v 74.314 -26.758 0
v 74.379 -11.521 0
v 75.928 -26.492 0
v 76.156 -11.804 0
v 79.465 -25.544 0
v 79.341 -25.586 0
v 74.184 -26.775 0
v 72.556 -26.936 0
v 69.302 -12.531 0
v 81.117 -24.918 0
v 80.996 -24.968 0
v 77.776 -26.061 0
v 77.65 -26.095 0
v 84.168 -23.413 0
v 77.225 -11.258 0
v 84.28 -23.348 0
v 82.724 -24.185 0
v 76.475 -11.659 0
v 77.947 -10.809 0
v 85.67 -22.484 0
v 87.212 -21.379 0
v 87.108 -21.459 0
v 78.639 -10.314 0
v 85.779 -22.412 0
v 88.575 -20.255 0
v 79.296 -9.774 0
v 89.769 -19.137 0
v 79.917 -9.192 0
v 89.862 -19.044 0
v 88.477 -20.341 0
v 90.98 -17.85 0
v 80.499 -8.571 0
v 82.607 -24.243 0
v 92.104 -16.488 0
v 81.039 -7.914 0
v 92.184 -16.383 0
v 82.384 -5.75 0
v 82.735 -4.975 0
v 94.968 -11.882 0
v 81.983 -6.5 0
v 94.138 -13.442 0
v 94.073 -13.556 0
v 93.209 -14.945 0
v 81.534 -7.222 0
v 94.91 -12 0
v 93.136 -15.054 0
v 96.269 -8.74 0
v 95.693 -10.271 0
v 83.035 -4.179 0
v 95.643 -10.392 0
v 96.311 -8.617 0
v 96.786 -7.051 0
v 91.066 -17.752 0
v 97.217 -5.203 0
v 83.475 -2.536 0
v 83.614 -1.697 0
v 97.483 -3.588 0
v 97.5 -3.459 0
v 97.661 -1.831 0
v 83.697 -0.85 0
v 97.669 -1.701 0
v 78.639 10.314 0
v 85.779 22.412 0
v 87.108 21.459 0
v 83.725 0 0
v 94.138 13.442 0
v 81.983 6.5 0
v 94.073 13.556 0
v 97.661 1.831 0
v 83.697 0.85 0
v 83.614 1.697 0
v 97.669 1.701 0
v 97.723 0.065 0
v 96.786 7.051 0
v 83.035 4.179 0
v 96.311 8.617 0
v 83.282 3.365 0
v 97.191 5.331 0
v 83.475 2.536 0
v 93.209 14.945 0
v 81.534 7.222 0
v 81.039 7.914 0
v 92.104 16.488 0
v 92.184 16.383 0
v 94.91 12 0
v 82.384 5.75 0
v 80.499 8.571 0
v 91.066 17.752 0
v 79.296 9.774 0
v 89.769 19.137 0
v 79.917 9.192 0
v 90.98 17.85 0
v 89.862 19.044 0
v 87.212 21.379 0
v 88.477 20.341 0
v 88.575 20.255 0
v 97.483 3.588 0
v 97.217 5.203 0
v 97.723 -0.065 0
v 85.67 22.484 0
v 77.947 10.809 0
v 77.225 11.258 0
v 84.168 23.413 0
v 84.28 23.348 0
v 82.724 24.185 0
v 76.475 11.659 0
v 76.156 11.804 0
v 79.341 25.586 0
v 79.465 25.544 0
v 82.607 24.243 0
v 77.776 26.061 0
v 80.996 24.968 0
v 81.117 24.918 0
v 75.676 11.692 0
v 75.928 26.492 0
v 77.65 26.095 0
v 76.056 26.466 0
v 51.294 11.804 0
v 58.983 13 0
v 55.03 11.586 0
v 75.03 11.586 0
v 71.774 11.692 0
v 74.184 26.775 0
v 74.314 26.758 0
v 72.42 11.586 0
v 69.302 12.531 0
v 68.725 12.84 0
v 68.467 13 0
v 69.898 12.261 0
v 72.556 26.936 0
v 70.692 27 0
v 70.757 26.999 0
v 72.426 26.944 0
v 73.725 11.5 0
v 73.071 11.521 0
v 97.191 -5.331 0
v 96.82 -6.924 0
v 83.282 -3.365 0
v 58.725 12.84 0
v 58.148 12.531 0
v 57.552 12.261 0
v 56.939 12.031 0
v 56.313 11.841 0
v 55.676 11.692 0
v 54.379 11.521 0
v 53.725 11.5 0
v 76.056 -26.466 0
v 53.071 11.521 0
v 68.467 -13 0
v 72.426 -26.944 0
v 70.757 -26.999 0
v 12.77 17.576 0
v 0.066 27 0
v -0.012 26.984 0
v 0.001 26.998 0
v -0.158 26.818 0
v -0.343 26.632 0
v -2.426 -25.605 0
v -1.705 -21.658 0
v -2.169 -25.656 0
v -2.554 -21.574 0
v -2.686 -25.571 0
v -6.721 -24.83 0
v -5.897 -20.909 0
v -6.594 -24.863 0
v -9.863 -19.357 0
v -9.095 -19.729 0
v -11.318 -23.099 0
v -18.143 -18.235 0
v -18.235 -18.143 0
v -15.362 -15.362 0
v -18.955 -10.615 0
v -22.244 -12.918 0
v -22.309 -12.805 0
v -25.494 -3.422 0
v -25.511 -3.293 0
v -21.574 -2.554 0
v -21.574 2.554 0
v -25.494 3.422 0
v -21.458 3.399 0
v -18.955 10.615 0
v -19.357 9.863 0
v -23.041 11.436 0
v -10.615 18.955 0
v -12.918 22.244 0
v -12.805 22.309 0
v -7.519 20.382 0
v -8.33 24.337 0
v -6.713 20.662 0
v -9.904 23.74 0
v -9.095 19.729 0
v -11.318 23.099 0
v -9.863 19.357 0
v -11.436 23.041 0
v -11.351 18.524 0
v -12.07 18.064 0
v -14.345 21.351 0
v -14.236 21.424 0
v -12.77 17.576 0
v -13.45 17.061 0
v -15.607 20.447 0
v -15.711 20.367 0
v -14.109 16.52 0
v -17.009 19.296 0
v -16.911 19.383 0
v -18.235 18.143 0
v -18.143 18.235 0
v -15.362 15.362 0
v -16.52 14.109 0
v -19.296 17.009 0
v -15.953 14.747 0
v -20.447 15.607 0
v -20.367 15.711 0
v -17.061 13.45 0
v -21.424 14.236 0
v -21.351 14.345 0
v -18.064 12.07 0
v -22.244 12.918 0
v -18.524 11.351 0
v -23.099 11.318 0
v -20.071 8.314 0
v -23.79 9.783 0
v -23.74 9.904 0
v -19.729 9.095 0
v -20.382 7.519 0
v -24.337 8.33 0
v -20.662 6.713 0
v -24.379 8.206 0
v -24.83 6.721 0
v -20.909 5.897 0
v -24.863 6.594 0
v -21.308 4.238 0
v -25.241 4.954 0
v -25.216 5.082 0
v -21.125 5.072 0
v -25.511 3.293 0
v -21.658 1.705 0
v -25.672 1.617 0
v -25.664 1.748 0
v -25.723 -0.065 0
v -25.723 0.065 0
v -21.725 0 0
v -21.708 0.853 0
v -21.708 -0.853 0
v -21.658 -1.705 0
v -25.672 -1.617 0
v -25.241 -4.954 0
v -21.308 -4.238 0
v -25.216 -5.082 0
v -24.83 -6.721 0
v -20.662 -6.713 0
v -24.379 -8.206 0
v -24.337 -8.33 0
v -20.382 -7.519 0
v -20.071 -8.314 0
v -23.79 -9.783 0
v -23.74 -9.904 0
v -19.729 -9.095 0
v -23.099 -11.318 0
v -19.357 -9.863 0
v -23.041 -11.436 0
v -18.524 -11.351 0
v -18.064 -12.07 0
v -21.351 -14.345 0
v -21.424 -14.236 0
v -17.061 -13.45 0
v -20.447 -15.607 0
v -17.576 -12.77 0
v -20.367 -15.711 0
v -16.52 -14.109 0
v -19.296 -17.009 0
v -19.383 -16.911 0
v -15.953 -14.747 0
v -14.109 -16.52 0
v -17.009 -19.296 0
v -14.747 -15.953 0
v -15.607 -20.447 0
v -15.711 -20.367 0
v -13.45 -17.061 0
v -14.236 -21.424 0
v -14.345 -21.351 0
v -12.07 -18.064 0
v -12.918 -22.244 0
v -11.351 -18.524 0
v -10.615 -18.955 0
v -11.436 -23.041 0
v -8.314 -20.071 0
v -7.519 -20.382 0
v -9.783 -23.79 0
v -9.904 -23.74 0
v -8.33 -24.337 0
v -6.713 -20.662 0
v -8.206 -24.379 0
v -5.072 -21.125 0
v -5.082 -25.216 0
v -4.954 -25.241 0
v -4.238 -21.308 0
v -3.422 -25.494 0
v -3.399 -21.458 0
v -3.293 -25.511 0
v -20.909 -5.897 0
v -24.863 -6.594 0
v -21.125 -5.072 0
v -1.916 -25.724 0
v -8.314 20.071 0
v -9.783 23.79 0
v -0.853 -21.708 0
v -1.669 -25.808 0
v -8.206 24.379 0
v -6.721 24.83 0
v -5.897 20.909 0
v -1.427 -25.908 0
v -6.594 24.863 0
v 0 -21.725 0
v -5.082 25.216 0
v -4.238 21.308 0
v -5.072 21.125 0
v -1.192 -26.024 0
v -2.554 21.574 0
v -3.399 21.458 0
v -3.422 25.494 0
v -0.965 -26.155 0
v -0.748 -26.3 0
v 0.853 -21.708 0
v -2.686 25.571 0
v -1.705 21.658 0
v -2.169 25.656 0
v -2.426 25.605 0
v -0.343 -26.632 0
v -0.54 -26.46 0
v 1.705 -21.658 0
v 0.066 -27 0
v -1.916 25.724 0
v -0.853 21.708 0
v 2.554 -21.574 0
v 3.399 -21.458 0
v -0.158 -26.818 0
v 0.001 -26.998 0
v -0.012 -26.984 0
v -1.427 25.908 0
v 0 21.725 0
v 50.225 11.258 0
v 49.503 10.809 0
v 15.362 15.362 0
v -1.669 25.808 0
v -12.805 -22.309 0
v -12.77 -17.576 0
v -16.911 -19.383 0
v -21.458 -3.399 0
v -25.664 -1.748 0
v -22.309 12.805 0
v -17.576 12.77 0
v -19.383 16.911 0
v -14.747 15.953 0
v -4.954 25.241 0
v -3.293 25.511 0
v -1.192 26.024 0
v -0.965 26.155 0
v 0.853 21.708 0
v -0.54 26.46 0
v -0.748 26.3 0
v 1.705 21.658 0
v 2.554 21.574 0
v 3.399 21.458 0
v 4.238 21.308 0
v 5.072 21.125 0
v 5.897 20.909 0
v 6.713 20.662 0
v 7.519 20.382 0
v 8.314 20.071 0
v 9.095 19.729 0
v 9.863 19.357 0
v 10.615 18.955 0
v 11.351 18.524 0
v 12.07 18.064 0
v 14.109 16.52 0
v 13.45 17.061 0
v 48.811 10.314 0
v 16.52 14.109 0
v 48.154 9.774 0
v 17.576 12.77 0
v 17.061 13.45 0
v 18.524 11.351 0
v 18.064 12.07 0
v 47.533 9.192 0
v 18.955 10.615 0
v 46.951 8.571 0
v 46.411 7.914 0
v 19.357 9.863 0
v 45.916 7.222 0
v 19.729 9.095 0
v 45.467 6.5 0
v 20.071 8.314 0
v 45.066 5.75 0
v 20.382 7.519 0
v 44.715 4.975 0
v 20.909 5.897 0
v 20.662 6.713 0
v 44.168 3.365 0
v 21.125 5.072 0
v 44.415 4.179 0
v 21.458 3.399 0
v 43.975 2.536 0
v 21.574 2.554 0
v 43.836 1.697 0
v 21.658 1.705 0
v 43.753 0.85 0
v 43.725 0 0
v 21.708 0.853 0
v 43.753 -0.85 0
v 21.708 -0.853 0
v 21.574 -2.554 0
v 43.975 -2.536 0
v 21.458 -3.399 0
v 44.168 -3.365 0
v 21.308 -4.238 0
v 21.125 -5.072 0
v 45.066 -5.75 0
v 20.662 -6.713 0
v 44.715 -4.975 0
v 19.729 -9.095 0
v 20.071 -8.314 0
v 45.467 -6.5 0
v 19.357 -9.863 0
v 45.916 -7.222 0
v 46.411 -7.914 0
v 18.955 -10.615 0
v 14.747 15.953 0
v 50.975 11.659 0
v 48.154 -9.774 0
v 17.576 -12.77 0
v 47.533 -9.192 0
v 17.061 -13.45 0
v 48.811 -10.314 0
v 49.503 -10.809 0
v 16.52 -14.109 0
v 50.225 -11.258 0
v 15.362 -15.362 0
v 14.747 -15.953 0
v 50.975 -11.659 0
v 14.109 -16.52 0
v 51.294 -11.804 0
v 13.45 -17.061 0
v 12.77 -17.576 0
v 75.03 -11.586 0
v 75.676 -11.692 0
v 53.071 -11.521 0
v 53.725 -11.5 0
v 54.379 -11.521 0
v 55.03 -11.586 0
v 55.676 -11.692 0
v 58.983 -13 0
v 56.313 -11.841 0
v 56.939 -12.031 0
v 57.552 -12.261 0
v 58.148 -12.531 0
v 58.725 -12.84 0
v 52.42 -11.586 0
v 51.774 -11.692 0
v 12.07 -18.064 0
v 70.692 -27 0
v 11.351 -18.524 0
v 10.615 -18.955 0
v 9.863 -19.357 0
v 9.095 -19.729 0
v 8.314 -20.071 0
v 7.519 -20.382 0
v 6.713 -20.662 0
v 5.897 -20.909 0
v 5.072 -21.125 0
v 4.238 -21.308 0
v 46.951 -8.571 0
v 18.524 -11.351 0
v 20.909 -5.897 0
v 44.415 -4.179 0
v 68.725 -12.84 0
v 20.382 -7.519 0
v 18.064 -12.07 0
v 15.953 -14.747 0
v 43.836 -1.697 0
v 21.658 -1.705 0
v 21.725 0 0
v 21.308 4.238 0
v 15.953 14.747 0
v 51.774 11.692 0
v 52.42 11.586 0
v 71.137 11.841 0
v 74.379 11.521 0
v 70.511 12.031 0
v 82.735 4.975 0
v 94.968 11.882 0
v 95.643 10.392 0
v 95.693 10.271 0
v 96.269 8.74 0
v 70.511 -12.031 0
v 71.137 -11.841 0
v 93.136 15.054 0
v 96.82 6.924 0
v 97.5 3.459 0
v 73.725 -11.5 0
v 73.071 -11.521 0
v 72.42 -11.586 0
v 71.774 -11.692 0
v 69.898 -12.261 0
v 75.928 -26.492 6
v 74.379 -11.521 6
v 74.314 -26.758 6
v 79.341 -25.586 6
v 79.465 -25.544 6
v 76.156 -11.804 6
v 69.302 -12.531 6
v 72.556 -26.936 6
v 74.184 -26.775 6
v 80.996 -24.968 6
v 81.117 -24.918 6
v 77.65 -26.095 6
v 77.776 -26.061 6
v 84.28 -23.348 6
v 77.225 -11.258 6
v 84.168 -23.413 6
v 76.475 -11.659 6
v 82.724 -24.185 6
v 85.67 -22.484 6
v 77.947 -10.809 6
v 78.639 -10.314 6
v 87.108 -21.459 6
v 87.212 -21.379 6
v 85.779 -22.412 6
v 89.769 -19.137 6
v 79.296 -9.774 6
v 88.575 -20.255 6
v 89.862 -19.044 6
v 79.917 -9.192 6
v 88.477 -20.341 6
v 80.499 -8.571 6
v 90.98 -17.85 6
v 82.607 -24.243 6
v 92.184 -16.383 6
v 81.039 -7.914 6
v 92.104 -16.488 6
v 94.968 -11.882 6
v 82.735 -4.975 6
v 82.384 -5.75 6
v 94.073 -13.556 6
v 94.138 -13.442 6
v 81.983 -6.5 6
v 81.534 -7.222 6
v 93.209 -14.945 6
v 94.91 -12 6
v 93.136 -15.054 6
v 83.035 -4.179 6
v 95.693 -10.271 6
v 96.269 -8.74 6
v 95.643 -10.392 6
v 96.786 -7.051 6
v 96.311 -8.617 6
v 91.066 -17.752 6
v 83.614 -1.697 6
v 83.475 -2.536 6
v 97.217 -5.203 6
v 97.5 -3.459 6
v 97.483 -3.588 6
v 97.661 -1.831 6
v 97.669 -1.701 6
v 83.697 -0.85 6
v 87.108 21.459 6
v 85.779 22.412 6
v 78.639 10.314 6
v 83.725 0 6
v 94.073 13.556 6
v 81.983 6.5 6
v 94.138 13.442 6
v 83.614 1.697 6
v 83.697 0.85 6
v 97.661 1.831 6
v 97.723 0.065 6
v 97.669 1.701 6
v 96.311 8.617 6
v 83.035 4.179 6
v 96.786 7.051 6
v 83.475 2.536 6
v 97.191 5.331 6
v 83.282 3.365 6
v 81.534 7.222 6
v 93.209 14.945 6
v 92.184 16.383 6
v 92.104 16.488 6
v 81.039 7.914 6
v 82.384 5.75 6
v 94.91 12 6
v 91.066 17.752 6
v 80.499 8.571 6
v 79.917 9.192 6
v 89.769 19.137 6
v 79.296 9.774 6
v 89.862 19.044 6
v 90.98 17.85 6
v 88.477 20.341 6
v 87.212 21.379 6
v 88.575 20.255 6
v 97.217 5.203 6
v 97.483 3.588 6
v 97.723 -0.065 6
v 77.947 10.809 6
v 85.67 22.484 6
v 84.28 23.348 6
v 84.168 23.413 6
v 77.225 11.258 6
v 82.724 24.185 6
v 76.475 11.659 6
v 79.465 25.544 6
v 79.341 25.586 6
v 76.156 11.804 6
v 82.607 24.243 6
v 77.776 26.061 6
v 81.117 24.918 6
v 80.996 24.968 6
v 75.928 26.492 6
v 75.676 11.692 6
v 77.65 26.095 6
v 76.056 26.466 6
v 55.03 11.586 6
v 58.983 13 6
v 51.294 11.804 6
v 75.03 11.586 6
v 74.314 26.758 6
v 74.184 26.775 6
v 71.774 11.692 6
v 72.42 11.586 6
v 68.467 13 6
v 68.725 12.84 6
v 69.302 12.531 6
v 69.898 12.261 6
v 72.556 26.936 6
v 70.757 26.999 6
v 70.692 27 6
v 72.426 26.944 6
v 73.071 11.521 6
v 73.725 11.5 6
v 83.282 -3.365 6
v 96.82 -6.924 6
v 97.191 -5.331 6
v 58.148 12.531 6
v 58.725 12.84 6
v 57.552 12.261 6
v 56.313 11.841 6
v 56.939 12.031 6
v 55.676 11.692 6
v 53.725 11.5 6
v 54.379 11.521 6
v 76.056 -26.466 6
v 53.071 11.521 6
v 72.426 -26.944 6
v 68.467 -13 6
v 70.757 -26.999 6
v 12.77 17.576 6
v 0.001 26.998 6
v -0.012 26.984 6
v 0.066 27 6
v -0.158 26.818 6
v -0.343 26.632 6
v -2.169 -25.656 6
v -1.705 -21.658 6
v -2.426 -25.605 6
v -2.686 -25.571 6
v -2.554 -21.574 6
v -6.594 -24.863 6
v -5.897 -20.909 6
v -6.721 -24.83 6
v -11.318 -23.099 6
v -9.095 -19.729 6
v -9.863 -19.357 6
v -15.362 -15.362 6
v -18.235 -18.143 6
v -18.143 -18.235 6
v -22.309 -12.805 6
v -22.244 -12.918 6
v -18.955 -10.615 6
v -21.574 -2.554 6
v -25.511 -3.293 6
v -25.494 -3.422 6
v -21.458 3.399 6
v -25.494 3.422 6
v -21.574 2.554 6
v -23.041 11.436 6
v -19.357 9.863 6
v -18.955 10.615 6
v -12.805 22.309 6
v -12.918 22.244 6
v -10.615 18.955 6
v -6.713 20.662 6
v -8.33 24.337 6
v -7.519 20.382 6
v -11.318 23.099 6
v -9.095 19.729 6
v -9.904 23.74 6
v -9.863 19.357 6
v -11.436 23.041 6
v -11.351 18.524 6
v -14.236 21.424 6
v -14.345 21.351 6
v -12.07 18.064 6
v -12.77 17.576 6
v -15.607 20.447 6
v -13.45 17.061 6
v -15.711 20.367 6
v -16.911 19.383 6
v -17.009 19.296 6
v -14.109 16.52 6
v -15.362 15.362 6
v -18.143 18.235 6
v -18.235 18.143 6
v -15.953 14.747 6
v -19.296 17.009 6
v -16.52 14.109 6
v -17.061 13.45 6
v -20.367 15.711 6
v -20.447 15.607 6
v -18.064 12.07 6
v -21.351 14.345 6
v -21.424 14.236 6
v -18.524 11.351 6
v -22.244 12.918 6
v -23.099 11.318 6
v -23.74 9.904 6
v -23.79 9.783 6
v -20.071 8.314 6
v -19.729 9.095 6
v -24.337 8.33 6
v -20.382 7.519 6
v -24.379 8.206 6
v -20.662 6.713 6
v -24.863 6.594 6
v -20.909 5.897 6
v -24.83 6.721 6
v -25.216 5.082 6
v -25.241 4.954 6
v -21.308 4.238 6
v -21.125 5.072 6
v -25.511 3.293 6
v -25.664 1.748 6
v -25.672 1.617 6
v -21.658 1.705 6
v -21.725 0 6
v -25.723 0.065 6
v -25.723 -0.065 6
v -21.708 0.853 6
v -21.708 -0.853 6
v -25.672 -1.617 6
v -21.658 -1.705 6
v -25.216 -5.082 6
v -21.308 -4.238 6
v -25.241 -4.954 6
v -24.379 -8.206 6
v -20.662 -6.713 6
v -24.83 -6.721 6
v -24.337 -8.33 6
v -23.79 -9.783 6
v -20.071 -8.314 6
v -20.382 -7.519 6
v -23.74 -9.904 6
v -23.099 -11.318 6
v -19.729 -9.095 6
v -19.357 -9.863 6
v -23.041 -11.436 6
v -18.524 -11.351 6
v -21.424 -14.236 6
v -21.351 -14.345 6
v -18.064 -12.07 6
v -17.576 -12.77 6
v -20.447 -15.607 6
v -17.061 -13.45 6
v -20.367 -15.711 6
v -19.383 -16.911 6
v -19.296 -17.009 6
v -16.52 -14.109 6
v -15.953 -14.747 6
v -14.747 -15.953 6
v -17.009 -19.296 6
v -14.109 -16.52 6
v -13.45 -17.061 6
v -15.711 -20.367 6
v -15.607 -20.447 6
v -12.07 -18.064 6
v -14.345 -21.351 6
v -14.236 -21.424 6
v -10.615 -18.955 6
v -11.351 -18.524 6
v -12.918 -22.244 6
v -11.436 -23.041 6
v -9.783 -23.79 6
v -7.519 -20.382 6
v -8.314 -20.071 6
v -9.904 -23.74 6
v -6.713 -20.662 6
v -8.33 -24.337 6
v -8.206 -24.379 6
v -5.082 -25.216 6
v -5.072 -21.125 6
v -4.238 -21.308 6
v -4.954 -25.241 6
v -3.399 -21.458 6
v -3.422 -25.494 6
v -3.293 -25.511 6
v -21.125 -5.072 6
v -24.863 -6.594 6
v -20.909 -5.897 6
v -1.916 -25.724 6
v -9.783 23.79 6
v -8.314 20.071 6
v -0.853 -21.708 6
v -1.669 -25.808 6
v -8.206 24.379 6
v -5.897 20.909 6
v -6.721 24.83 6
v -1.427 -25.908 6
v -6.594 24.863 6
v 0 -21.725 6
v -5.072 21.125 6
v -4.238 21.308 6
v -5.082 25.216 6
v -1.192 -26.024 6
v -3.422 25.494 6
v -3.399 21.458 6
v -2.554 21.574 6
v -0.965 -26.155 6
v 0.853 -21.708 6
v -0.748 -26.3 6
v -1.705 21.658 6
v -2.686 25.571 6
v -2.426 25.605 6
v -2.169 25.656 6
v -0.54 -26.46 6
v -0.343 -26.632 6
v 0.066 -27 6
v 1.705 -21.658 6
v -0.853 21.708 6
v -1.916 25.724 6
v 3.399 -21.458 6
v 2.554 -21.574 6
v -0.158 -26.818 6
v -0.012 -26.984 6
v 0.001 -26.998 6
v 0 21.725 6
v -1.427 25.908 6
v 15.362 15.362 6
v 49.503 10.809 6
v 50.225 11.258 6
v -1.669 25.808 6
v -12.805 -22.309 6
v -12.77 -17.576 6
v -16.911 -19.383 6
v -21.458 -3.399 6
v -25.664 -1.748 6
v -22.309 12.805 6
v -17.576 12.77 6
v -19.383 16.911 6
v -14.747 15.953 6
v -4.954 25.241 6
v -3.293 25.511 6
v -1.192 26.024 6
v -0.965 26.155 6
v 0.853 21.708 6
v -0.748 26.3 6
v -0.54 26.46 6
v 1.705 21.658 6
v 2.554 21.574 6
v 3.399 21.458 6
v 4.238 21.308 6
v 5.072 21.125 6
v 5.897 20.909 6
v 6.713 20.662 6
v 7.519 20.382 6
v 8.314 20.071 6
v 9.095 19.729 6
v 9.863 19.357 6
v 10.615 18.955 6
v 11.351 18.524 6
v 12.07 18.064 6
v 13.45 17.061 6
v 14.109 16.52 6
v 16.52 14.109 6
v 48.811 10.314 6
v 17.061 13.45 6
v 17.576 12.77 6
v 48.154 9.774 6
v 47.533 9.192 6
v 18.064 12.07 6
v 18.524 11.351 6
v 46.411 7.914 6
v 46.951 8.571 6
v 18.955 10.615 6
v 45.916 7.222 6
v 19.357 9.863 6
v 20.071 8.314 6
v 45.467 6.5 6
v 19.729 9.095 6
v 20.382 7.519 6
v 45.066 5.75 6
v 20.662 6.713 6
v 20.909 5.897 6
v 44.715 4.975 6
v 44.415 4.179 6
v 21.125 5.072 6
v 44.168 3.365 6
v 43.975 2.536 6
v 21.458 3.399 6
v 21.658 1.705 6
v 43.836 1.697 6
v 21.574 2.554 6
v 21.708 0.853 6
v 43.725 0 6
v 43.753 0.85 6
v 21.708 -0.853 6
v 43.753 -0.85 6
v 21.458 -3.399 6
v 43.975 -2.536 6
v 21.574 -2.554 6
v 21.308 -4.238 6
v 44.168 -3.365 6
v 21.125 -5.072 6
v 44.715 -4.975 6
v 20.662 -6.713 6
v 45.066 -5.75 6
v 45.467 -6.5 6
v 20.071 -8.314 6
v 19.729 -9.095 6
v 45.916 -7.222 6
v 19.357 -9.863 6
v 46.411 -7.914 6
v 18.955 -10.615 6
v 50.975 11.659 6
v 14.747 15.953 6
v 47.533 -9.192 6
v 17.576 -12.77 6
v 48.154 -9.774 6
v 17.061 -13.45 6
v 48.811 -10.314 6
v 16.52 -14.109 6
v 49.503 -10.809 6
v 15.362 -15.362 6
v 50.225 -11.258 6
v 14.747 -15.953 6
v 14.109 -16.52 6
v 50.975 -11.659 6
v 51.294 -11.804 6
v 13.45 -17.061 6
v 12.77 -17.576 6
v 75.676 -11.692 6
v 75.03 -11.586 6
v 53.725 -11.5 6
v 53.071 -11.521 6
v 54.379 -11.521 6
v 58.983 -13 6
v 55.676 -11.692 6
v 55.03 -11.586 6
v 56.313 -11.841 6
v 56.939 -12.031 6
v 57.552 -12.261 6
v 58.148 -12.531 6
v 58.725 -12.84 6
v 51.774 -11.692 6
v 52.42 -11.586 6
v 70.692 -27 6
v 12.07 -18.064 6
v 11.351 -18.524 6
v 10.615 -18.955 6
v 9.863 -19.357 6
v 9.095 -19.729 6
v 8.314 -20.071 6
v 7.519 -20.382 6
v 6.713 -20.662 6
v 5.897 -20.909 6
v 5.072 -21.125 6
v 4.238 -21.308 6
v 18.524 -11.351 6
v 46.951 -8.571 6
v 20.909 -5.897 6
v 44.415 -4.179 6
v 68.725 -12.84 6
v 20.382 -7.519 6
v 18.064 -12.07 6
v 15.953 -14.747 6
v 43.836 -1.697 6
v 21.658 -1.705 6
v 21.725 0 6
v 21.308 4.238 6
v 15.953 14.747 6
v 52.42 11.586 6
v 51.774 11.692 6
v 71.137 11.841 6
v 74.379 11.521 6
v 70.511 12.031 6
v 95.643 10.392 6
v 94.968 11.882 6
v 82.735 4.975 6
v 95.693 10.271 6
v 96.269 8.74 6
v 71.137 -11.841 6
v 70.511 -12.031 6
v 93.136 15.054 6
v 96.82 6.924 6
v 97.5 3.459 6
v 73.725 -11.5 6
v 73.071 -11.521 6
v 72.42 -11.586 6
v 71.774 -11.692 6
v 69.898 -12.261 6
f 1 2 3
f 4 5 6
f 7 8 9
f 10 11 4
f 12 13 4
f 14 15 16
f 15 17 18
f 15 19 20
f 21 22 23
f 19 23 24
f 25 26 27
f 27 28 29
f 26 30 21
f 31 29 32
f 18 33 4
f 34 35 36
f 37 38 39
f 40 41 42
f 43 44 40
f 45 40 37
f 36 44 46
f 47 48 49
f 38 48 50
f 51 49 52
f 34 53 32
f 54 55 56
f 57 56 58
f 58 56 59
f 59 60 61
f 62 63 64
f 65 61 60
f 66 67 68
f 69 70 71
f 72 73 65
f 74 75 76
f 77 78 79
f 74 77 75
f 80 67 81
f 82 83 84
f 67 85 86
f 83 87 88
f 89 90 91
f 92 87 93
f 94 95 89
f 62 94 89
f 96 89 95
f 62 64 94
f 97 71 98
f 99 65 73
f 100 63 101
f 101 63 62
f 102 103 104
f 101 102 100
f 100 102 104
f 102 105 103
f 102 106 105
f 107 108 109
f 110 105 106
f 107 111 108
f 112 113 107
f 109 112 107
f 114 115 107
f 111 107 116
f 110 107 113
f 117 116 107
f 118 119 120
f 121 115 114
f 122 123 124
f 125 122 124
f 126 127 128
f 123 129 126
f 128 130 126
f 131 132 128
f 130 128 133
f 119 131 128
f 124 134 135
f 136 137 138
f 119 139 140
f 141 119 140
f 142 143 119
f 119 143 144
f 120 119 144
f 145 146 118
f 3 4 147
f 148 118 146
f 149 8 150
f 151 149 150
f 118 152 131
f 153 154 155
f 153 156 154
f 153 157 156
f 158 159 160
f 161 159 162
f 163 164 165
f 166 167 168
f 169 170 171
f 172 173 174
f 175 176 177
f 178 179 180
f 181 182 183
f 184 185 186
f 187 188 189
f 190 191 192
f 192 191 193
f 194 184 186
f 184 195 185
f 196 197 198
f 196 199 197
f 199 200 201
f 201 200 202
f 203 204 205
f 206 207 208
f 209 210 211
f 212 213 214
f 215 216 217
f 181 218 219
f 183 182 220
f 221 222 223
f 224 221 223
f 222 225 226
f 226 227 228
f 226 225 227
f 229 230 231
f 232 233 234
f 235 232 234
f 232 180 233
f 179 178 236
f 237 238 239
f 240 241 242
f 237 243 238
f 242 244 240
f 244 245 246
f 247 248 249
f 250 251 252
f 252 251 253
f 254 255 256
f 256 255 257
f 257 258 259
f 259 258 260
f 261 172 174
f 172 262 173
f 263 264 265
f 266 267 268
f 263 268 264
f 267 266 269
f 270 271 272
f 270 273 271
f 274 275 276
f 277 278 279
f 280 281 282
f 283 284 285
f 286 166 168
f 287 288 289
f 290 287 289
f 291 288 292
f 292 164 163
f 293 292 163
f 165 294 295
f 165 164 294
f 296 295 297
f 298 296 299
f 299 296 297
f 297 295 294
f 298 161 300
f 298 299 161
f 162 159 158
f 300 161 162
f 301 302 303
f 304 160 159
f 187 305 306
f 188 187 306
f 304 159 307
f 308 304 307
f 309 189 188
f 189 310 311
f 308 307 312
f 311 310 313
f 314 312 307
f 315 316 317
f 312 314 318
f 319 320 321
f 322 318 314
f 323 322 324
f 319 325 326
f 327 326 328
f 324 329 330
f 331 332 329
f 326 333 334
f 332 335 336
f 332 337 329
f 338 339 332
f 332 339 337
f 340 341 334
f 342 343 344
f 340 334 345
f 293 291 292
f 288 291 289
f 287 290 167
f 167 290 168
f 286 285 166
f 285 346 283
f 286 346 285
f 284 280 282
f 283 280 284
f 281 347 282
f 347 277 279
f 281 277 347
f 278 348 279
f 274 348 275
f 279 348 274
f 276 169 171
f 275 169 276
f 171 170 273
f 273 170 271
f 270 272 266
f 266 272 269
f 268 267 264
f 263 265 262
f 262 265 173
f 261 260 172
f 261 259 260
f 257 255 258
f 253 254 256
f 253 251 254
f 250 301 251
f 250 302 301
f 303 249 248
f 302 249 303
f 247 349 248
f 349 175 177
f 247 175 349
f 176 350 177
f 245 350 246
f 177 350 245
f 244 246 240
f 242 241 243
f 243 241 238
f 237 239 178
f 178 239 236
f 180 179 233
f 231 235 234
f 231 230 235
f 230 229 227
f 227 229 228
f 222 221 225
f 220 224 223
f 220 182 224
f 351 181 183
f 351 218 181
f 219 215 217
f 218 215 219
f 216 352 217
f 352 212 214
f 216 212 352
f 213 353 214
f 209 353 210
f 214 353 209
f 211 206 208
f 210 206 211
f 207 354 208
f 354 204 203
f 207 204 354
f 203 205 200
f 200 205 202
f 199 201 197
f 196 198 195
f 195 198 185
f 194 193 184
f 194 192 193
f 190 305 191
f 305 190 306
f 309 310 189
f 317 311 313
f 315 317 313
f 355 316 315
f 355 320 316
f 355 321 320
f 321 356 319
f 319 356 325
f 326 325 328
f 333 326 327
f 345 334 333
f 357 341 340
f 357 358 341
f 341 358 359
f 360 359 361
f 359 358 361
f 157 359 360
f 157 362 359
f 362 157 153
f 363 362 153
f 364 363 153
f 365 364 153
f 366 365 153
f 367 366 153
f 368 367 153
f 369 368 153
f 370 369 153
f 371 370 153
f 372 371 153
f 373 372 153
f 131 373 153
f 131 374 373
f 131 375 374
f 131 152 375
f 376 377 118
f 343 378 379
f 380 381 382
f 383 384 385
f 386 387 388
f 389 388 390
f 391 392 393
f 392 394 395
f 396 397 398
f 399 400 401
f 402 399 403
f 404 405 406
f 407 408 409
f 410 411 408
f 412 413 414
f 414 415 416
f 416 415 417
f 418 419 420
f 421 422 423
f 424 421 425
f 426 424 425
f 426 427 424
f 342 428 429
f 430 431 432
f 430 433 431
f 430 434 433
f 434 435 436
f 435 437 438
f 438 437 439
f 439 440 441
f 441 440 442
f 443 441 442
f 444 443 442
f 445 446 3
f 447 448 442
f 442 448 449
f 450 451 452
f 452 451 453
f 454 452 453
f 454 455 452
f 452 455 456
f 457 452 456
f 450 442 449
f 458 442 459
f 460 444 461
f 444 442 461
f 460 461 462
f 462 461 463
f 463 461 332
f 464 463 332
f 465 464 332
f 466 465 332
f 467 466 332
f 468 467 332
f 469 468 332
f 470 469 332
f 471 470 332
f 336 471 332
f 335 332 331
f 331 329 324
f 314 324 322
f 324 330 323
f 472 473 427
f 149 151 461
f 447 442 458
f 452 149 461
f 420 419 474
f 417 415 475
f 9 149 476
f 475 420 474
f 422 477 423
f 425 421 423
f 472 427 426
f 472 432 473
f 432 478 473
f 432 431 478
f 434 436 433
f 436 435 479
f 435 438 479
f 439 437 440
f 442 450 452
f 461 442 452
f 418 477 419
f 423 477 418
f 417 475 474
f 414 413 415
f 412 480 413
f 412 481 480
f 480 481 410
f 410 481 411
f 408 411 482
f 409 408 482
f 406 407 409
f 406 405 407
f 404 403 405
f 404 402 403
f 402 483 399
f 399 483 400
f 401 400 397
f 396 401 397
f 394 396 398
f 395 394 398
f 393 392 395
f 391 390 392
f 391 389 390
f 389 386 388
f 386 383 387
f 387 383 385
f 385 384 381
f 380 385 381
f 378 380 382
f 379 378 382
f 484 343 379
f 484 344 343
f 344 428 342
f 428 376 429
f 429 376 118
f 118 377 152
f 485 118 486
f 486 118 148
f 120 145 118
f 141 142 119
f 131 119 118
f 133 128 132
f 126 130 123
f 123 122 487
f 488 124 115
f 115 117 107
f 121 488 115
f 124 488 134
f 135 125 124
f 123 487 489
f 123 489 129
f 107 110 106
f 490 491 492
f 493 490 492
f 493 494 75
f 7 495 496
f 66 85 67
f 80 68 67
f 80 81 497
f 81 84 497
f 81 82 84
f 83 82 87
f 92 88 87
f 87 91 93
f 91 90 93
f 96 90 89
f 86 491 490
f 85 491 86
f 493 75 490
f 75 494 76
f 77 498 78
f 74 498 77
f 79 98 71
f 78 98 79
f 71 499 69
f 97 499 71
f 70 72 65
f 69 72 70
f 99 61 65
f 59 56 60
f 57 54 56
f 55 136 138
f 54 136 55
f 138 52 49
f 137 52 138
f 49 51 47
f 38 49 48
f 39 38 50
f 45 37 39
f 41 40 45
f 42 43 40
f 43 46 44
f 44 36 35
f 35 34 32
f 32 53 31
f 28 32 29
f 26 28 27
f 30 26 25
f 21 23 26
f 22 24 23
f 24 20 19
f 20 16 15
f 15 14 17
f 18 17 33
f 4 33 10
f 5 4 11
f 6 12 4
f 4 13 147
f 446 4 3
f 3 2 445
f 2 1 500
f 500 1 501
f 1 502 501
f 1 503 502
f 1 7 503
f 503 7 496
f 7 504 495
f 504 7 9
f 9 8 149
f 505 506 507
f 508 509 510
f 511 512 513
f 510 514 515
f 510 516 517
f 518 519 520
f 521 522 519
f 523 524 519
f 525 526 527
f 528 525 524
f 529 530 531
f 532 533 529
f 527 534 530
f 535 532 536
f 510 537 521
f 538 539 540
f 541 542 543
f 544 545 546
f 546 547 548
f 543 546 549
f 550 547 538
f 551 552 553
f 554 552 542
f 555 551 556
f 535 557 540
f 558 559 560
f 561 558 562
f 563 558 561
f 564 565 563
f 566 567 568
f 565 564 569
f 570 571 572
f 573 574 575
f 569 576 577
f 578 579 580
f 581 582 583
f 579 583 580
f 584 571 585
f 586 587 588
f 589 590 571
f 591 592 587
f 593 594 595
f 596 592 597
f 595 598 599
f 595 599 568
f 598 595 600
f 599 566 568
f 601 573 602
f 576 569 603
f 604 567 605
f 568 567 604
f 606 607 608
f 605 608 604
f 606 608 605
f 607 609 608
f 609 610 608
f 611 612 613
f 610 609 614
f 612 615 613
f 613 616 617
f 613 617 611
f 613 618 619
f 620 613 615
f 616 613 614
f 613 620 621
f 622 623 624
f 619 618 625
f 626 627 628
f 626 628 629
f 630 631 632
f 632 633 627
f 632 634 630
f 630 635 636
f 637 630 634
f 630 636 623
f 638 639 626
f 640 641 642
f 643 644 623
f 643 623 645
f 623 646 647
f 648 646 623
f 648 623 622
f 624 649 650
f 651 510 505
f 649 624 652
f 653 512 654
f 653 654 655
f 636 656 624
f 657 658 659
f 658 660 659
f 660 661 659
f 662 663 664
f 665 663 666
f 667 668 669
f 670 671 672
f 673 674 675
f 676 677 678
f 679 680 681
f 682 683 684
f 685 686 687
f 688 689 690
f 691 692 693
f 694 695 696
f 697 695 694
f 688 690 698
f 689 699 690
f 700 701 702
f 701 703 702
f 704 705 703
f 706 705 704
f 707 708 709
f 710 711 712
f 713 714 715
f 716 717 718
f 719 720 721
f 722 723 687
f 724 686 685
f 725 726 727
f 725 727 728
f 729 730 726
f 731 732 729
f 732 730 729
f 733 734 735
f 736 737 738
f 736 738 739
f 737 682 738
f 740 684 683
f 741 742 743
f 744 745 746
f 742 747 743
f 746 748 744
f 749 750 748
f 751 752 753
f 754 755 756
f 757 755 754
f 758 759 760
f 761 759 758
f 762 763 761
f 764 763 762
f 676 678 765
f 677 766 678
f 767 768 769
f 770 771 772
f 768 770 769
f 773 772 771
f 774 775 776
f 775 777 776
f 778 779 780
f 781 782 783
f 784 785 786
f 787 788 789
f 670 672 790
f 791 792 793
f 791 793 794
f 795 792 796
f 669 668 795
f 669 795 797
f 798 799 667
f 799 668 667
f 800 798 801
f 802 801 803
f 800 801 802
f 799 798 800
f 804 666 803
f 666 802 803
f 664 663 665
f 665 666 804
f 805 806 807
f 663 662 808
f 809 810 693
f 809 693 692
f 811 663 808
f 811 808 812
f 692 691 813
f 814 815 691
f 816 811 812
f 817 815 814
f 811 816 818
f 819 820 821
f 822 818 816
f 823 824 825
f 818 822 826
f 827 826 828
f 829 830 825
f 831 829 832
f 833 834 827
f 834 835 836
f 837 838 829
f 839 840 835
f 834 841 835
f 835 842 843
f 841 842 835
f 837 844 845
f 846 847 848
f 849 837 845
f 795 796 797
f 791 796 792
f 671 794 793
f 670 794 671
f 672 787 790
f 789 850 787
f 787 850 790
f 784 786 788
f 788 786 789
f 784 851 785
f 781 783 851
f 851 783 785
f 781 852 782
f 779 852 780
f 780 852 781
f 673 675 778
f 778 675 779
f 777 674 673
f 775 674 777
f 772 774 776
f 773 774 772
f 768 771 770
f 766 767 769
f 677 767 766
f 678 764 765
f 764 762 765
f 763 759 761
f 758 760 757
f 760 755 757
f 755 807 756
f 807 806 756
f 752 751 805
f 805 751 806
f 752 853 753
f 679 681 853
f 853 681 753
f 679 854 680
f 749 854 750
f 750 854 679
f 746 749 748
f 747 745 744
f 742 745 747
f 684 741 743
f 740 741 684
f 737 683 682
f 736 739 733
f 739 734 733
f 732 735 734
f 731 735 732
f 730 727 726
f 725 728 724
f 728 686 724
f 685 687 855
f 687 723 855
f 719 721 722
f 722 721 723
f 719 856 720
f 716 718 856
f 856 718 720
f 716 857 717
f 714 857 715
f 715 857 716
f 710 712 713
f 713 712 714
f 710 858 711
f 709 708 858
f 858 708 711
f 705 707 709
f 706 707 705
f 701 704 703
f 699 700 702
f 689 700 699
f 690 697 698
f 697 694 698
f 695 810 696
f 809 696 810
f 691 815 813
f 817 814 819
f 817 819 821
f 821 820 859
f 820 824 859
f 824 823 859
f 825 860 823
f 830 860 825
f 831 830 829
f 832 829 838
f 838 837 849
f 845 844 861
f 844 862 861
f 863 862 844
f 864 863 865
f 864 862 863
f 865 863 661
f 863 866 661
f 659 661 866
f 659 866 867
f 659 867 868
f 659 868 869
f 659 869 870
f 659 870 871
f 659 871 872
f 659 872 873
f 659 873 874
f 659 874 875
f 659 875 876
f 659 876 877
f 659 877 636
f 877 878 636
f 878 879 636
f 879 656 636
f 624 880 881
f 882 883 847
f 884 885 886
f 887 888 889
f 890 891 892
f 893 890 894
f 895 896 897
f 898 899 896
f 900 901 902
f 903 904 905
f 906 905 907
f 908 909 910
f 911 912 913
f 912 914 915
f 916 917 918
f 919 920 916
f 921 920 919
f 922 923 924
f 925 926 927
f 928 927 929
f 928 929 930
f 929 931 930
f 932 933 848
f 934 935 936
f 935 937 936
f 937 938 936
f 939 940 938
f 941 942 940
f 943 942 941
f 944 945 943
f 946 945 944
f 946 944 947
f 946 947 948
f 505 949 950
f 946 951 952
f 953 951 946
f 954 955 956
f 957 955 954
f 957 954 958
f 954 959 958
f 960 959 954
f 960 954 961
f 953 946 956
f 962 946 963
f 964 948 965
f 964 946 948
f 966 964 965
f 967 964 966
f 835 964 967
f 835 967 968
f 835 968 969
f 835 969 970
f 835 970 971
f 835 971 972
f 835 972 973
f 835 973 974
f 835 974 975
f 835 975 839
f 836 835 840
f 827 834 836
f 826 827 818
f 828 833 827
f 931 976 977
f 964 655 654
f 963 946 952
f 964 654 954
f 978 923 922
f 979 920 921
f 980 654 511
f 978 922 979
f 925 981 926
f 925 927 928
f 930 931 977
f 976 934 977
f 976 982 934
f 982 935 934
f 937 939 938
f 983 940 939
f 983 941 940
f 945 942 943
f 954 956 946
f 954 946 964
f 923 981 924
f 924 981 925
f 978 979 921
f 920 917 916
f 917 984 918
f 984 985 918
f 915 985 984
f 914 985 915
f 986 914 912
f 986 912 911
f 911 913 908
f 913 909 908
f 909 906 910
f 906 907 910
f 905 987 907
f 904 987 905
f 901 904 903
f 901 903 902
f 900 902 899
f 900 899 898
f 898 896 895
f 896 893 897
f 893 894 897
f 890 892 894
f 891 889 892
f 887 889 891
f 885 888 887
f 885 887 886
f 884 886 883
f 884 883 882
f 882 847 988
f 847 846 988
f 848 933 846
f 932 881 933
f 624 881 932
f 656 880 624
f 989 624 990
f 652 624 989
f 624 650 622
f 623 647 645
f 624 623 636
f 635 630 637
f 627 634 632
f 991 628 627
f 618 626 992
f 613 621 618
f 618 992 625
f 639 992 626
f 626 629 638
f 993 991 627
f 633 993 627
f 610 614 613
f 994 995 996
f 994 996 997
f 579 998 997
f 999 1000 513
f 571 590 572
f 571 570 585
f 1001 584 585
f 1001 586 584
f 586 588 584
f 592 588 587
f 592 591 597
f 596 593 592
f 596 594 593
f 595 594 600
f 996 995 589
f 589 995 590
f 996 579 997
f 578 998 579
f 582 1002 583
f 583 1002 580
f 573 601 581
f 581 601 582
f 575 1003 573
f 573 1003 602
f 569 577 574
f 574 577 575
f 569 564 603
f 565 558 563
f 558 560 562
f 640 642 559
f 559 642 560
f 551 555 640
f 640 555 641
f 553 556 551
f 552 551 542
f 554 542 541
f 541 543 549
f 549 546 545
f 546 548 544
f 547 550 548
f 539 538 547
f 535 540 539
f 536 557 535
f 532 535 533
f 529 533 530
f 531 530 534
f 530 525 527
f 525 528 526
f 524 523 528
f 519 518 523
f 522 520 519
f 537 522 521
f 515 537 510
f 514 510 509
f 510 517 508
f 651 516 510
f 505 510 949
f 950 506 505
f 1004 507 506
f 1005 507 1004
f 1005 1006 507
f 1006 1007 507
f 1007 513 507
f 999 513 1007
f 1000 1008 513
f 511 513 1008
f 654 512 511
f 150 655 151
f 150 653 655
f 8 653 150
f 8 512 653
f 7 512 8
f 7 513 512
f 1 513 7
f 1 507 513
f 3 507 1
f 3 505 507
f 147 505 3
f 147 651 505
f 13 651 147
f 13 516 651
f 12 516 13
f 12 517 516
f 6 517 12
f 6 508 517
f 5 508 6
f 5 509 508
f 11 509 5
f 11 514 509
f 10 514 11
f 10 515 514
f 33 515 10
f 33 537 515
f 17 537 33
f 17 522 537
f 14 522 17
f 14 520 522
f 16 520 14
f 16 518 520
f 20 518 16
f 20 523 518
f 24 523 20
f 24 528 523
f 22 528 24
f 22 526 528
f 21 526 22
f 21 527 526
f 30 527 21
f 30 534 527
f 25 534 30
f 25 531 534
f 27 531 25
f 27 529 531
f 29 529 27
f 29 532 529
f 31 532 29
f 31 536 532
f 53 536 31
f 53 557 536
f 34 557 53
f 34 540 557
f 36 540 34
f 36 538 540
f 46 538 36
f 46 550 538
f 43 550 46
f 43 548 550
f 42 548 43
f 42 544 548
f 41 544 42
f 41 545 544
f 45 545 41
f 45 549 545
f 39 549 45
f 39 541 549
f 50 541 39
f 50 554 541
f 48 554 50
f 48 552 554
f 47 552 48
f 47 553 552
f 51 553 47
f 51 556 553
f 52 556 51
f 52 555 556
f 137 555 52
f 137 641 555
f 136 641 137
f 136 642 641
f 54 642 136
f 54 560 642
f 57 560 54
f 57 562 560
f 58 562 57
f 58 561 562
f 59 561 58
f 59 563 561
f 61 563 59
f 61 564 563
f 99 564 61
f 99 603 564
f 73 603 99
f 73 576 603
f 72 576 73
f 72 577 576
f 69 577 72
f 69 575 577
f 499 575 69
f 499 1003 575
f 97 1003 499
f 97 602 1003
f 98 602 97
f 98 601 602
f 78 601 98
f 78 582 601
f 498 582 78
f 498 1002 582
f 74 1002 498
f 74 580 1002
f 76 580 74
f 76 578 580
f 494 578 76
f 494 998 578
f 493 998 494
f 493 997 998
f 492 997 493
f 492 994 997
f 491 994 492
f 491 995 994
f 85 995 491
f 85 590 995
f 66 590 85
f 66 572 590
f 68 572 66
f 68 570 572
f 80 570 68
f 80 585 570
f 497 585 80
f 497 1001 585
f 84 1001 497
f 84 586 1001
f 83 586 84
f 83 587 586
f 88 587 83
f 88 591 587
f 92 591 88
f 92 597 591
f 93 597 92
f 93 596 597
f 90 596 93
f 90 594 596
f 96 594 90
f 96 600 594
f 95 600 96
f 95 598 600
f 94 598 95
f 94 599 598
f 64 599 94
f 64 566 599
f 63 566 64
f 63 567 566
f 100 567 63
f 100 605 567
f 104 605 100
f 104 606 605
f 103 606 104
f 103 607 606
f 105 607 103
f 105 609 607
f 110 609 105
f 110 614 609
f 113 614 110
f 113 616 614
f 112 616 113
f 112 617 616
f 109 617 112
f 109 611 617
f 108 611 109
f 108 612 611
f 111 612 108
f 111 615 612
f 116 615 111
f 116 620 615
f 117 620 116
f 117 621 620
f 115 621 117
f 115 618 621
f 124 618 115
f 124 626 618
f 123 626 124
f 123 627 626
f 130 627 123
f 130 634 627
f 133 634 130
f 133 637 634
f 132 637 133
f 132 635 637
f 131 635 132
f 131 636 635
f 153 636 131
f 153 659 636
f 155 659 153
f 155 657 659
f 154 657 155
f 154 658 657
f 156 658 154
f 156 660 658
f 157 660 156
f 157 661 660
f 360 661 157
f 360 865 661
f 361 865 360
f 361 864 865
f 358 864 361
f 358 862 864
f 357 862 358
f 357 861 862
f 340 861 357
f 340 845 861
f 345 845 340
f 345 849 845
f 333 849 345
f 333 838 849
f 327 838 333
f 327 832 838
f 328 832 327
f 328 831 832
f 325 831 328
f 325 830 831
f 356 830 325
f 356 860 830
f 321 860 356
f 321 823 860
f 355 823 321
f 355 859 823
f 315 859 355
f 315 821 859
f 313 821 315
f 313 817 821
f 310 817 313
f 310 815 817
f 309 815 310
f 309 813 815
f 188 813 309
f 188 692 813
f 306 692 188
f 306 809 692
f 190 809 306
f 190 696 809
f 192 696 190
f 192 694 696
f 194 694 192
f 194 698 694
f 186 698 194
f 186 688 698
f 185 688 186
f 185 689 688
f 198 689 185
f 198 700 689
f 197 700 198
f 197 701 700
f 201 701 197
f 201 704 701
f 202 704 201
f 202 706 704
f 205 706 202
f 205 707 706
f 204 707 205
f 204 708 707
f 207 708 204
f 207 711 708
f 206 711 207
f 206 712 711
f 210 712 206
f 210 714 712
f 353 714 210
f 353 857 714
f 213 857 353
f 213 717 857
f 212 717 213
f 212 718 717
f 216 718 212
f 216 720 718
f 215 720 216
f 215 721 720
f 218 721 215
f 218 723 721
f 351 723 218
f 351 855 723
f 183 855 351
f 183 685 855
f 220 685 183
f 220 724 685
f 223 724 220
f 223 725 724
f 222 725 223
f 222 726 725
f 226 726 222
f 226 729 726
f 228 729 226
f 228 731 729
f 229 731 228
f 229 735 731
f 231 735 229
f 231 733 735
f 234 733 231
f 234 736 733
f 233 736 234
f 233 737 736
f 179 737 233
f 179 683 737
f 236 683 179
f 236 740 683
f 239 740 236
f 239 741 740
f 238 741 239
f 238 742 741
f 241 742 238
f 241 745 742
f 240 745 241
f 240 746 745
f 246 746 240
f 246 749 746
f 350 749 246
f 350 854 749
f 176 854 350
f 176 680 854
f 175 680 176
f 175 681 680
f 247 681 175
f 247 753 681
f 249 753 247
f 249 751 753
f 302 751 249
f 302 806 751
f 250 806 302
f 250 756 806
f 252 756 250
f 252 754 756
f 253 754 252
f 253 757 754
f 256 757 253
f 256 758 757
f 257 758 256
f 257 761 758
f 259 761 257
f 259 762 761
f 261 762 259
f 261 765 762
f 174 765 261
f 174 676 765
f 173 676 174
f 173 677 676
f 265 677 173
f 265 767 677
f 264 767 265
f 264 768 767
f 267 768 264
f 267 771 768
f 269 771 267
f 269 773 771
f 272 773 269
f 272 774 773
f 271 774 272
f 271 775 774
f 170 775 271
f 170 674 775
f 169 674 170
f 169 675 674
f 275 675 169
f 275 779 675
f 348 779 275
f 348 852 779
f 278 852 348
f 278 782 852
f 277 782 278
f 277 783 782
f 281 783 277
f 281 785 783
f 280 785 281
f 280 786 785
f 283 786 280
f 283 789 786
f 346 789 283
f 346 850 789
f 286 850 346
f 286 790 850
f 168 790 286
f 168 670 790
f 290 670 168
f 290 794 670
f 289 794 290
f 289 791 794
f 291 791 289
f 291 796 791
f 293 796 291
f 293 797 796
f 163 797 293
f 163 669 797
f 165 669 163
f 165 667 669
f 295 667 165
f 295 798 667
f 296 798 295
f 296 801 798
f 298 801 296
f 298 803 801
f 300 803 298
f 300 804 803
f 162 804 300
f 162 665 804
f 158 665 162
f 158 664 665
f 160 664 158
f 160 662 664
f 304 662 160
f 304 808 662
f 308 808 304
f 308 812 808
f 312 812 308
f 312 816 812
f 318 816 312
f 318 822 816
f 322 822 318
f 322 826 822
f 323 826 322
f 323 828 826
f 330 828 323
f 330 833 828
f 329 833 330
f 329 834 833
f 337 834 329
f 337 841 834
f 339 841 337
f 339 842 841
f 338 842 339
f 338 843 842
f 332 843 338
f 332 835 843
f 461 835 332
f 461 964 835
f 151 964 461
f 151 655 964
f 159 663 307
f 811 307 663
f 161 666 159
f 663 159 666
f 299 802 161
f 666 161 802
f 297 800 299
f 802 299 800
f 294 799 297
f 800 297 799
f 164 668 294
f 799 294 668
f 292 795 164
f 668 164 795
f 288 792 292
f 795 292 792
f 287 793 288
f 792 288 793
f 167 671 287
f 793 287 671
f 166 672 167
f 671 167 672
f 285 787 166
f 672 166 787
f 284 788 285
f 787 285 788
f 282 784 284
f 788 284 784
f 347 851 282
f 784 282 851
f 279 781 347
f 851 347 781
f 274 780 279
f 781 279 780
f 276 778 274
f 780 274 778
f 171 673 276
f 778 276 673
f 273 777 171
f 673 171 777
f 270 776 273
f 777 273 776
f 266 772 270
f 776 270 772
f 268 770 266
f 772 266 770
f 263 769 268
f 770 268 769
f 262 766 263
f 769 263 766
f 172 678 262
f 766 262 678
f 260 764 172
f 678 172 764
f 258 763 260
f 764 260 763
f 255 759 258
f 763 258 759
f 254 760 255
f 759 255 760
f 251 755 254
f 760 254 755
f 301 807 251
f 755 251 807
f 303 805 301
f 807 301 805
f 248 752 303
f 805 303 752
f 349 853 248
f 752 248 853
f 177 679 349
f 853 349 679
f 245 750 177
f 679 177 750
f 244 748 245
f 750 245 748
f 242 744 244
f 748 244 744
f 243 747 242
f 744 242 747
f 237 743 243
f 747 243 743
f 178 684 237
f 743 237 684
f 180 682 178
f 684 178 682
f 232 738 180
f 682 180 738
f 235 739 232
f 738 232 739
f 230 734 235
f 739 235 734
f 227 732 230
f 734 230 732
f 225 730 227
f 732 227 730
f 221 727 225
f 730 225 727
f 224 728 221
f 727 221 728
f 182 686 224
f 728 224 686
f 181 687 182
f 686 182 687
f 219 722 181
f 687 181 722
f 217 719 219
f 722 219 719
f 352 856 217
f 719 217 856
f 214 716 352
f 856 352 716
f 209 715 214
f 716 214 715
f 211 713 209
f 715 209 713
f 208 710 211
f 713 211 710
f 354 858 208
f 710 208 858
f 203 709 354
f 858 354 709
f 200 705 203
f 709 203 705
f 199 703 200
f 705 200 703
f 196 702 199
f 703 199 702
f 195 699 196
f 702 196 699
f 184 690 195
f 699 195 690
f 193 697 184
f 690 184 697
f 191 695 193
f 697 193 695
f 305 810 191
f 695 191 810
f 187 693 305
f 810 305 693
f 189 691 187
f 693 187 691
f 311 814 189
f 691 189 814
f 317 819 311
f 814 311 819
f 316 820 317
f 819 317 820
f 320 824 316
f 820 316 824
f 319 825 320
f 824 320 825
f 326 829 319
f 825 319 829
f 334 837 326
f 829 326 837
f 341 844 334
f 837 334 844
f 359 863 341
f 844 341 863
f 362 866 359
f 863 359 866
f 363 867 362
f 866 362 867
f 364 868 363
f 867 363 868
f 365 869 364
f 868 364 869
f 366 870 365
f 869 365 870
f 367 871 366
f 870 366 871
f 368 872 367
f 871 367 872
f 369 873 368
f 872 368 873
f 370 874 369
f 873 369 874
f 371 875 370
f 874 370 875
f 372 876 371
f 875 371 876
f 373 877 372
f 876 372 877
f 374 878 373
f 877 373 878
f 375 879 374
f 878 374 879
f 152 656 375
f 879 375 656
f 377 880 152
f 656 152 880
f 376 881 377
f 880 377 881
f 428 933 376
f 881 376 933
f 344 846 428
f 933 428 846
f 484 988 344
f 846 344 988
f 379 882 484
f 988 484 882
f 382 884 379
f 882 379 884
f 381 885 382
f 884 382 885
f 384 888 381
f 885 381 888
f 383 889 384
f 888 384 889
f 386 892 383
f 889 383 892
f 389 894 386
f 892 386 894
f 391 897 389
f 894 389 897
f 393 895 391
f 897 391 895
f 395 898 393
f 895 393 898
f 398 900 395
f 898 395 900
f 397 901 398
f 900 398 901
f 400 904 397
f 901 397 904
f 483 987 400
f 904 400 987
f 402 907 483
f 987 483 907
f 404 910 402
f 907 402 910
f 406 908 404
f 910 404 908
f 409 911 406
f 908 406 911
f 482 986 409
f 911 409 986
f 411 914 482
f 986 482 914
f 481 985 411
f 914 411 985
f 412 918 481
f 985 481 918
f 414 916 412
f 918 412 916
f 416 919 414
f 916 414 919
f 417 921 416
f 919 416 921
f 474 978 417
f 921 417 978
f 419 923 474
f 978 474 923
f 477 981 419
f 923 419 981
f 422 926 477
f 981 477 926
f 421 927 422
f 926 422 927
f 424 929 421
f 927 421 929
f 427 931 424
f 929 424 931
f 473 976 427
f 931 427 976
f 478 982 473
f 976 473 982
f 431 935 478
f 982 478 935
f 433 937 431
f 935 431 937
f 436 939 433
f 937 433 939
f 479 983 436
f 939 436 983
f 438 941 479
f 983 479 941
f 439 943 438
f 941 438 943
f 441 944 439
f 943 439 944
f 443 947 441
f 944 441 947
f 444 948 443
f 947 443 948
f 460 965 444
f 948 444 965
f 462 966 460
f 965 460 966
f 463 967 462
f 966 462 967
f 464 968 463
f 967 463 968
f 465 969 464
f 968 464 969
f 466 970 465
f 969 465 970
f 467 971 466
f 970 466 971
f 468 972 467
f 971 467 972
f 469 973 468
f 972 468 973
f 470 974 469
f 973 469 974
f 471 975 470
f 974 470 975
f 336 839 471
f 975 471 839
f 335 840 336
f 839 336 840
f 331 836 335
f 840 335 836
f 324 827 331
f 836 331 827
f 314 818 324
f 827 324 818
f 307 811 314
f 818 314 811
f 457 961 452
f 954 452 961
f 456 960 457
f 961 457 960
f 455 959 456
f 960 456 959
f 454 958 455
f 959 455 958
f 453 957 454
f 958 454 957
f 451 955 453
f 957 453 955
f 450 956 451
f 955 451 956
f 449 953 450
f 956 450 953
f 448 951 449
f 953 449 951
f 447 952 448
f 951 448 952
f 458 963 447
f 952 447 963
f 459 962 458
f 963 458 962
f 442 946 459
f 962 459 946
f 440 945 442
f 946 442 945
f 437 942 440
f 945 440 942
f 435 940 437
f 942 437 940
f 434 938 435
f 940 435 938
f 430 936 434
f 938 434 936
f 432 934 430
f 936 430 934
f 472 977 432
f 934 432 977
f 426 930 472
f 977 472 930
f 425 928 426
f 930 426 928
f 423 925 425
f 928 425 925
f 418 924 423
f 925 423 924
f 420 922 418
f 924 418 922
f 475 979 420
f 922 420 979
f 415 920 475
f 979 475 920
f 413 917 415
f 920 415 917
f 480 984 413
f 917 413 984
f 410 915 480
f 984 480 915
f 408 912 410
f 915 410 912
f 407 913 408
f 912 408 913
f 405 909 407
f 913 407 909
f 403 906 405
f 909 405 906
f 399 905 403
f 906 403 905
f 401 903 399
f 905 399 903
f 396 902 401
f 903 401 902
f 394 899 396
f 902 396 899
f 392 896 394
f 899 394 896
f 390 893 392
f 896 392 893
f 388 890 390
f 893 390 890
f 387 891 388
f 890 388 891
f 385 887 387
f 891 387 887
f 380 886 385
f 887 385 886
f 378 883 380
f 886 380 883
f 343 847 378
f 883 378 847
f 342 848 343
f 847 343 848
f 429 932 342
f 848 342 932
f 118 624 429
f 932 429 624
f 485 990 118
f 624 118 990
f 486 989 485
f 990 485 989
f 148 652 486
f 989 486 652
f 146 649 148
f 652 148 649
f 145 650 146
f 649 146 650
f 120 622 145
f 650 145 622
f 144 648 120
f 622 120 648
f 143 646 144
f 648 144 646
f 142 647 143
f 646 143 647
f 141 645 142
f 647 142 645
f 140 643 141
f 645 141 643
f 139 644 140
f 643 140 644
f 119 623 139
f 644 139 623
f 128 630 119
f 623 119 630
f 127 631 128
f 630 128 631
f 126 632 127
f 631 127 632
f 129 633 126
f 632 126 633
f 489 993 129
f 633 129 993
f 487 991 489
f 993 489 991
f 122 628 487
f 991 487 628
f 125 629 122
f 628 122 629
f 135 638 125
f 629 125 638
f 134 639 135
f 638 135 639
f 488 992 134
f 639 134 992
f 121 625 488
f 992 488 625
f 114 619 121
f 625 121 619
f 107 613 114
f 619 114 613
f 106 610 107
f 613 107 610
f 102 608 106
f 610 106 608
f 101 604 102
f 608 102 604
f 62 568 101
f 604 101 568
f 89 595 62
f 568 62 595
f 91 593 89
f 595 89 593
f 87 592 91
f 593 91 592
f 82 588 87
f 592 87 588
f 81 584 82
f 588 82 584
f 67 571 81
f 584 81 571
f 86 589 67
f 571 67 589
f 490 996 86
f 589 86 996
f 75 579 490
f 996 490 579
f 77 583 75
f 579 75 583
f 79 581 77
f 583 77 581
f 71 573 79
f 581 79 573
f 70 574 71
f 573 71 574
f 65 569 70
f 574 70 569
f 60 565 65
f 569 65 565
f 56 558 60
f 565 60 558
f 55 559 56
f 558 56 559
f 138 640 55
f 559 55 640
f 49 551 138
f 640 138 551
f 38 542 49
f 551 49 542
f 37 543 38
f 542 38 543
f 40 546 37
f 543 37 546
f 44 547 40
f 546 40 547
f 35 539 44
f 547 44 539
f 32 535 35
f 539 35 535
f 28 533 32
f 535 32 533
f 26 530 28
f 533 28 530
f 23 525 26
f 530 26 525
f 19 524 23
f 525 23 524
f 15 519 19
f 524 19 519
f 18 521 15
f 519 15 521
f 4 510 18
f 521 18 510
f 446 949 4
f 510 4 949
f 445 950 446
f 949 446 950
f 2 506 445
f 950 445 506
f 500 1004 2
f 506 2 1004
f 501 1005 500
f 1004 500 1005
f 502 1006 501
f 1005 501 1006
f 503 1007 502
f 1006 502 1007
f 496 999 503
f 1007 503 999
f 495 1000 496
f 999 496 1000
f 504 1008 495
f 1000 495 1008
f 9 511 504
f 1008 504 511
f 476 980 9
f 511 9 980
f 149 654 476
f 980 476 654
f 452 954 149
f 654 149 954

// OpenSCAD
// TEMPLATE: ring-and-loop carry handle — a ring that sits around a neck (bottle, jar, cable) with a finger loop; optional finger scallops
// Interfaces: neck_id (the neck's outer diameter) + clearance -> bore. Origin at the bore axis, ring bottom on z = 0.
// Load path: loop -> tangent bridges -> ring. Print flat (ring on bed) so the carry load runs along the layers.

/* [Interface] */
neck_id = 43.2;          // [20:0.1:90]
clearance = 0.25;        // [0:0.05:0.8]
ring_height = 6;         // [3:0.5:20]
ring_wall = 4;           // [2:0.5:10]

/* [Loop] */
loop_inner_w = 40;       // [25:1:80]
loop_inner_h = 26;       // [15:1:45]
loop_thick = 14;          // [4:0.5:14]
bridge_len = 4;          // [0:0.5:20]  straight bridge between ring and loop (keeps the bore closed)
fillet_r = 4;            // [0:0.5:10]  fillet where bridges meet ring and loop
scallops = true;         // finger scallops on the inside long edges
scallop_depth = 1.5;     // [0:0.25:4]

/* [Render] */
render_target = "part";  // [part, coupon, assembly]

/* [Hidden] */
$fn = 96;
bore = neck_id + clearance;
ring_od = bore + 2 * ring_wall;
loop_cx = ring_od / 2 + bridge_len + loop_inner_w / 2 + loop_thick;   // loop center on +X
loop_ow = loop_inner_w + 2 * loop_thick;
loop_oh = loop_inner_h + 2 * loop_thick;

assert(bridge_len >= 0, "bridge_len must be >= 0");
assert(loop_inner_h > 2 * scallop_depth + 10, "scallops too deep for the loop height");
echo(bore = bore, ring_od = ring_od, overall_length = ring_od + bridge_len + loop_ow);

module stadium2d(w, h) { hull() { translate([-(w - h) / 2, 0]) circle(d = h); translate([(w - h) / 2, 0]) circle(d = h); } }

module outline2d() {
    // ring + bridges + loop as a 2D union, with fillets by offset trick
    offset(r = -fillet_r) offset(r = fillet_r) union() {
        circle(d = ring_od);
        translate([loop_cx, 0]) stadium2d(loop_ow, loop_oh);
        // solid bridge from the ring to the loop, as tall as the loop, so the load path has no waist or notch
        translate([0, -loop_oh / 2]) square([loop_cx, loop_oh]);
    }
}

module openings2d() {
    circle(d = bore, $fn = 160);
    translate([loop_cx, 0]) difference() {
        stadium2d(loop_inner_w, loop_inner_h);
        if (scallops) for (s = [-1, 1]) for (i = [-1, 1])
            translate([i * loop_inner_w / 4, s * (loop_inner_h / 2 + loop_inner_w / 4 - scallop_depth)]) circle(r = loop_inner_w / 4);
    }
}

module part() {
    linear_extrude(height = ring_height) difference() { outline2d(); openings2d(); }
}

module coupon() {
    // three rings, mating feature only: clearance -0.2 / 0 / +0.2, embossed labels
    for (i = [-1, 0, 1]) translate([i * (bore + 10), 0, 0]) {
        difference() { cylinder(d = bore + i * 0.2 + 2 * 2.4, h = 3); translate([0, 0, -1]) cylinder(d = bore + i * 0.2, h = 5, $fn = 160); }
        translate([0, (bore + 2 * 2.4) / 2 + 3, 0]) linear_extrude(1) text(str(i * 0.2), size = 4, halign = "center");
    }
}

module assembly() {
    part();
    %translate([0, 0, -3]) cylinder(d = neck_id, h = ring_height + 6);
    %translate([0, 0, ring_height + 0.3]) cylinder(d = neck_id + 18, h = 3);
}

if (render_target == "part") part();
else if (render_target == "coupon") coupon();
else assembly();
